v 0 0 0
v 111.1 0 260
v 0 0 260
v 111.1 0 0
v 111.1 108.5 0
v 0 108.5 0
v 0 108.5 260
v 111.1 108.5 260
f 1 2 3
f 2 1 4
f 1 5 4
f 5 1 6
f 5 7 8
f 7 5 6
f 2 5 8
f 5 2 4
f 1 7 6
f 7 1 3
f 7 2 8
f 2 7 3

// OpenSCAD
//inside of midleton wooden box with double doors
totHeight = 260 ;
totWidth = 111.1 ;
totDepth = 108.5 ;
volume = [ totWidth, totDepth, totHeight] ;

//inner structure definitions
structDivs = 6 ;
structStrength = 1 ;
structH = totHeight/structDivs ;
post = [structStrength, structStrength, structH] ;

//Volume Visual
#cube( volume );

FL = [0, 0, 0];
FR = [volume.x - post.x, 0, 0];
BR = [volume.x - post.x, volume.y - post.y, 0];
BL = [0, volume.y - post.y, 0];

for (i = [0:structH:structH -1]) {
    translate ([0,0,i]) {
        //left and right sides
        hull() {
            translate( FR ) cube( post );
            translate( BR ) cube( post );
        }
        hull() {
            translate( FL ) cube( post );
            translate( BL ) cube( post );
        }
        //Base plate
        hull() {
            cube([volume.x, post.y, post.y]) ;
            translate ([0, 0, 0] + BL) cube([volume.x, post.y, post.y]) ;
        }
    }
}
